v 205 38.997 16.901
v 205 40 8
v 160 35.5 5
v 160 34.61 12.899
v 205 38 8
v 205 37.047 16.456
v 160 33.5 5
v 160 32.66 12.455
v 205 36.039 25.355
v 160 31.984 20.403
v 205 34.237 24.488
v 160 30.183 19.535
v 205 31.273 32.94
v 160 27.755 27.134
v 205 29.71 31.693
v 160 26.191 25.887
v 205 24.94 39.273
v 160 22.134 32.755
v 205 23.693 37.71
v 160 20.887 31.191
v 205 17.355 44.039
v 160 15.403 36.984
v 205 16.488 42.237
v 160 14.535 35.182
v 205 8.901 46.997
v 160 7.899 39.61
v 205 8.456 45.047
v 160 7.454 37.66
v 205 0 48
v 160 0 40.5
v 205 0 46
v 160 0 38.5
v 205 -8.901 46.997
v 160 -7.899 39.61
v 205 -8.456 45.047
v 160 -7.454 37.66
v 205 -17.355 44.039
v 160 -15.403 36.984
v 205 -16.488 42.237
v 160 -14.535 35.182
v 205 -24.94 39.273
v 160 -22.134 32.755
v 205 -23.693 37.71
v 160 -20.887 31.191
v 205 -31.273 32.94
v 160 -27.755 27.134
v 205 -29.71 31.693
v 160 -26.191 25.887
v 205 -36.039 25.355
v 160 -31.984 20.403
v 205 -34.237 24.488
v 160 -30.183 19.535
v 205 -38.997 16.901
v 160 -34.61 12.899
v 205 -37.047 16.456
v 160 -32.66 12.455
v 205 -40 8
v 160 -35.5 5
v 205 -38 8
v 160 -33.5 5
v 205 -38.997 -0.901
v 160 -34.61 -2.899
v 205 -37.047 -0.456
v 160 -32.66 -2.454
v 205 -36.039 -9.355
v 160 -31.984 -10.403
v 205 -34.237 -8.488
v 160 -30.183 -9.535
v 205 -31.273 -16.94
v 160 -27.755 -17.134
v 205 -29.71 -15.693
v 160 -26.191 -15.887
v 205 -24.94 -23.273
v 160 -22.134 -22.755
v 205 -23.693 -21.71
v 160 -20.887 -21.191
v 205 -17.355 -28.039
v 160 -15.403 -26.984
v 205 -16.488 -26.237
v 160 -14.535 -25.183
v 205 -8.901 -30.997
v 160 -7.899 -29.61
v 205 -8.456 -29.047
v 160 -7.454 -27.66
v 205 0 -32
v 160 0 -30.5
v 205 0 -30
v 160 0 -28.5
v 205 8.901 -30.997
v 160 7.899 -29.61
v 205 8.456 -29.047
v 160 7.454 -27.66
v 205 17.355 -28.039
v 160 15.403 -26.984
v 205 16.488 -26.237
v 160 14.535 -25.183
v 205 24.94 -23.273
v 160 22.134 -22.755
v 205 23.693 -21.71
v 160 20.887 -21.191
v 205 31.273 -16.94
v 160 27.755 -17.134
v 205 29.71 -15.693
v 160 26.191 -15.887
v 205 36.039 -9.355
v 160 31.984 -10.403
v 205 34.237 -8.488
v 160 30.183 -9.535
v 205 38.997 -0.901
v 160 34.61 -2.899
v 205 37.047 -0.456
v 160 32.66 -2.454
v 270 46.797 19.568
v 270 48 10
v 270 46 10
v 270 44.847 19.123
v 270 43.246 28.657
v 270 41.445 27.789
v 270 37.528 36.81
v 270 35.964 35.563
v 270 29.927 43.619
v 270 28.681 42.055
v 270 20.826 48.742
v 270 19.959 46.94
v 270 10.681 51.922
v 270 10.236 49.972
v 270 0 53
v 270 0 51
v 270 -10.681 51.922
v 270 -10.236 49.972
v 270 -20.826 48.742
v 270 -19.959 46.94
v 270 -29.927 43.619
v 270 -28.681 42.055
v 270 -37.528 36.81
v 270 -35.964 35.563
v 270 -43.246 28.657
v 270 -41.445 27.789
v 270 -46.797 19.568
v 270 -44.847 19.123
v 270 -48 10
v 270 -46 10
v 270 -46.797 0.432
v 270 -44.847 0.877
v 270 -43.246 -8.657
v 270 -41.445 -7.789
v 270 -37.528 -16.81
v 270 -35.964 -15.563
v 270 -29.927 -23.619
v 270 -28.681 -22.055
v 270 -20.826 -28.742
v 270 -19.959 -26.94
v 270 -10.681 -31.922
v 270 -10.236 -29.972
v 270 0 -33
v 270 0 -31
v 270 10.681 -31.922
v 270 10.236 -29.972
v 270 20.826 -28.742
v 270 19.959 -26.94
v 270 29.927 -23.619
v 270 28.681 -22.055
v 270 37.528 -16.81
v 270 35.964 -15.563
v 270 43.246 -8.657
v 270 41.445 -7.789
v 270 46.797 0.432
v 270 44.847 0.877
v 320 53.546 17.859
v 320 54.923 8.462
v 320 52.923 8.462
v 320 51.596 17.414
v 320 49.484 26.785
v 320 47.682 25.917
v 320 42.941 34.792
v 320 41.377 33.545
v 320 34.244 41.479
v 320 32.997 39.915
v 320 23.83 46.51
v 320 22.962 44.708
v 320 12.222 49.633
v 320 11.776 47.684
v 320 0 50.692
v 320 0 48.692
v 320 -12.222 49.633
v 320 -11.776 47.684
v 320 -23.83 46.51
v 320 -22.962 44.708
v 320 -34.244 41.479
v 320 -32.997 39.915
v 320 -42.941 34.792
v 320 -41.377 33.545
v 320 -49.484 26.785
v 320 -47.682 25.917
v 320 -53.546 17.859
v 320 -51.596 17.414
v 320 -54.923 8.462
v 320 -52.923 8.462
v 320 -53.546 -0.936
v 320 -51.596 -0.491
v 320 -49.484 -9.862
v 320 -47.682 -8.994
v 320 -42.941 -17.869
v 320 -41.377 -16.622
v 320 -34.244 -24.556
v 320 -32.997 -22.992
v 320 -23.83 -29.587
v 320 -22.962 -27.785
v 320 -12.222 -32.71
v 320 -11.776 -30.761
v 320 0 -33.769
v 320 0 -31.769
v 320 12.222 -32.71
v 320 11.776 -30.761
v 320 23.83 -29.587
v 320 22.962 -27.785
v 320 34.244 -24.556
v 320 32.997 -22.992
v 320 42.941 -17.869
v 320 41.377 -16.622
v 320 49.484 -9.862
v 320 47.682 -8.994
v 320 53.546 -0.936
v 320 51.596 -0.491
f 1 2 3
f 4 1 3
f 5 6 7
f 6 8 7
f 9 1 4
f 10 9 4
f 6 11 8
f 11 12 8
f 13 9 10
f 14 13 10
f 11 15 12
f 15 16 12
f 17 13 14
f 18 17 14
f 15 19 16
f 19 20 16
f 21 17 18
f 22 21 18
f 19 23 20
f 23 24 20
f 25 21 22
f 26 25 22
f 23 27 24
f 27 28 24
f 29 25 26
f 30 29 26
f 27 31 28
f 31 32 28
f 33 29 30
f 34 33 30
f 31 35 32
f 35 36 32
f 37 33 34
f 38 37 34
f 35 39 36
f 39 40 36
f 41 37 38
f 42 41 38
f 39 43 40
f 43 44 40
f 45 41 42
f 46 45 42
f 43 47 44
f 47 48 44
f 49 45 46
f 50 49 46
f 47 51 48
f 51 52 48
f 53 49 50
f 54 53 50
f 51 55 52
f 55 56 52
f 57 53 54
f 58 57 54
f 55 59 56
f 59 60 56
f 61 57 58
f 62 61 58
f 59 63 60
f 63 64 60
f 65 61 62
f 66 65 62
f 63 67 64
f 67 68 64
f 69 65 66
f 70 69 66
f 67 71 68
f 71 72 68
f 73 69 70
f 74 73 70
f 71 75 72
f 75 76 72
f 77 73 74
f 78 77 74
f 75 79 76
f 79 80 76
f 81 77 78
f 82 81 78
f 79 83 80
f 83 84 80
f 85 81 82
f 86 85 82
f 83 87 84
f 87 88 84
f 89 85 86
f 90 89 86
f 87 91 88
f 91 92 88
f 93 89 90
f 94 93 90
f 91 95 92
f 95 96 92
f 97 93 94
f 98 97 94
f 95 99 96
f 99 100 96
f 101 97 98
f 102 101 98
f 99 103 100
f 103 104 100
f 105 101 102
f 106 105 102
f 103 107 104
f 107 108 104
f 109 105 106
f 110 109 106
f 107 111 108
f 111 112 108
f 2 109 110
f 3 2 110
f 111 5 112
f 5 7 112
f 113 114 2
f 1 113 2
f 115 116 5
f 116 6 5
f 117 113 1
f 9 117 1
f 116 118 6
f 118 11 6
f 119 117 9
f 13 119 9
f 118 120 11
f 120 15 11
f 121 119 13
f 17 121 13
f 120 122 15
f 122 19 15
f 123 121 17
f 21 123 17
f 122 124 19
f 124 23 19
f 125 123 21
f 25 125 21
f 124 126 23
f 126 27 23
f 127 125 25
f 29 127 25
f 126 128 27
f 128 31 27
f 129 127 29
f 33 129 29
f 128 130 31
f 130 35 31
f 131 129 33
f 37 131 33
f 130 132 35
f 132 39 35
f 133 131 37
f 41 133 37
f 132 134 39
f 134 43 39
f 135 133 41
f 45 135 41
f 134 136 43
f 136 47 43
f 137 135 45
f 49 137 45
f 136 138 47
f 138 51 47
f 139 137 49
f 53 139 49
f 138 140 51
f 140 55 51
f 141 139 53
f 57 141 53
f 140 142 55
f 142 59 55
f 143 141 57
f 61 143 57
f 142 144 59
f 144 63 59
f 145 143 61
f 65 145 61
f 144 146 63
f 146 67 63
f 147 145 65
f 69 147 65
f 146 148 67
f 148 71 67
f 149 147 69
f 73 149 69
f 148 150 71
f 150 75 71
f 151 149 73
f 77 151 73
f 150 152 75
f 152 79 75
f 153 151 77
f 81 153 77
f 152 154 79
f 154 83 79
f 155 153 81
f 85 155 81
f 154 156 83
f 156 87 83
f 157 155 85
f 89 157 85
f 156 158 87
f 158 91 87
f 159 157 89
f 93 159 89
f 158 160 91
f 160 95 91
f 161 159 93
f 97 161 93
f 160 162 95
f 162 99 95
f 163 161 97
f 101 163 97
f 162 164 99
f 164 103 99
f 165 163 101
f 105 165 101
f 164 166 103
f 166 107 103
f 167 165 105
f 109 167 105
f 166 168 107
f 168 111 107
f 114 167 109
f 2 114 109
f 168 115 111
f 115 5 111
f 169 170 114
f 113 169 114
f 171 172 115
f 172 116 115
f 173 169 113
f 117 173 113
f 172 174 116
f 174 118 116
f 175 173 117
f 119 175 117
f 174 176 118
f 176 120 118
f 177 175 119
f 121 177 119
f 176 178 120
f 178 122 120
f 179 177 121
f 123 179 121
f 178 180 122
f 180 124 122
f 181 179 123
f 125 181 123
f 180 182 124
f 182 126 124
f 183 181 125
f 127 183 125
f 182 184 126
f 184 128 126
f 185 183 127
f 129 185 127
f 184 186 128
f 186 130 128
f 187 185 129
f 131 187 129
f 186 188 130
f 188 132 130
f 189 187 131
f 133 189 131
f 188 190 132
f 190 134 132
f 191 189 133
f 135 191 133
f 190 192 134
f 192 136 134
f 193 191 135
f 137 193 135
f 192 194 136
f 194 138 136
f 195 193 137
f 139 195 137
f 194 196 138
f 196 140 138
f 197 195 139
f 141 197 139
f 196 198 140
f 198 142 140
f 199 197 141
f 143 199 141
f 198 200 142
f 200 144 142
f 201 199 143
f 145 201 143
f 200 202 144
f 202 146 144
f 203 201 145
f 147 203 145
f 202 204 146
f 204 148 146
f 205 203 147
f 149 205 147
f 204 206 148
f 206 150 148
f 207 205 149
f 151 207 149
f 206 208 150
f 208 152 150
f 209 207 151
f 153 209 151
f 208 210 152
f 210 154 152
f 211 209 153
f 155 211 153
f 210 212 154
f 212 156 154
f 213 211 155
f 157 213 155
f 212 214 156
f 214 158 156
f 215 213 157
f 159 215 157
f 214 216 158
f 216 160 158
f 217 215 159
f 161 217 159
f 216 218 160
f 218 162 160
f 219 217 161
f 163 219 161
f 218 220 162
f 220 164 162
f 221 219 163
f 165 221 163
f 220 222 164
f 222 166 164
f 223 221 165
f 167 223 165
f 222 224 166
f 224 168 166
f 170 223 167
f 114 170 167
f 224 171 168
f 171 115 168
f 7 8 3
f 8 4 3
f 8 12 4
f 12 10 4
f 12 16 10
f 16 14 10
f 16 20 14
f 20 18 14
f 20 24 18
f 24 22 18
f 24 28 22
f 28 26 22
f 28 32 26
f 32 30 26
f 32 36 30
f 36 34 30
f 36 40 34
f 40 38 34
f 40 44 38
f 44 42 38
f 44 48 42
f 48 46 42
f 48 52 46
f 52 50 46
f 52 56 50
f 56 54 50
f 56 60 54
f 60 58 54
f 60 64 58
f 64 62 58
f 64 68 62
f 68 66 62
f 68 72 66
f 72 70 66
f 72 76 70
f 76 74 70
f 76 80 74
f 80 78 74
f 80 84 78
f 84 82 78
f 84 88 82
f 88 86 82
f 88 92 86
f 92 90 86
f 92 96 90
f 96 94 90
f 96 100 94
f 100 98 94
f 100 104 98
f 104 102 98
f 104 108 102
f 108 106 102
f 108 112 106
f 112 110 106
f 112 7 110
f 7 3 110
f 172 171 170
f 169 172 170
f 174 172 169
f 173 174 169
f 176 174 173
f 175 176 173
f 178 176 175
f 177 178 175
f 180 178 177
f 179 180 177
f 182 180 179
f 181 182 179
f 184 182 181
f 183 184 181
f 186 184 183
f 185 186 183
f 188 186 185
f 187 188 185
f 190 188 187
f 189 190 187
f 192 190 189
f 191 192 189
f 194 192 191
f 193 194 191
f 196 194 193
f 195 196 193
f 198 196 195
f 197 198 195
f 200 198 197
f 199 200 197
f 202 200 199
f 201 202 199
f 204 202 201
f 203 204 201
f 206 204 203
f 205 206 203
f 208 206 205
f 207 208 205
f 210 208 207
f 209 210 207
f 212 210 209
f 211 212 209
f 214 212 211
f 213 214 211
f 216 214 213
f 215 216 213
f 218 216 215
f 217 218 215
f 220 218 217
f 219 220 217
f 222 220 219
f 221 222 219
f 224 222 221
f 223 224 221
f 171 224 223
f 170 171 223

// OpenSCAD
polyhedron(points=[[160.0, 35.5, 5.0], [160.0, 34.609941, 12.899493], [160.0, 31.984395, 20.402873], [160.0, 27.755018, 27.133888], [160.0, 22.133888, 32.755018], [160.0, 15.402873, 36.984395], [160.0, 7.899493, 39.609941], [160.0, 0.0, 40.5], [160.0, -7.899493, 39.609941], [160.0, -15.402873, 36.984395], [160.0, -22.133888, 32.755018], [160.0, -27.755018, 27.133888], [160.0, -31.984395, 20.402873], [160.0, -34.609941, 12.899493], [160.0, -35.5, 5.0], [160.0, -34.609941, -2.899493], [160.0, -31.984395, -10.402873], [160.0, -27.755018, -17.133888], [160.0, -22.133888, -22.755018], [160.0, -15.402873, -26.984395], [160.0, -7.899493, -29.609941], [160.0, -0.0, -30.5], [160.0, 7.899493, -29.609941], [160.0, 15.402873, -26.984395], [160.0, 22.133888, -22.755018], [160.0, 27.755018, -17.133888], [160.0, 31.984395, -10.402873], [160.0, 34.609941, -2.899493], [160.0, 33.5, 5.0], [160.0, 32.660085, 12.454451], [160.0, 30.182457, 19.535105], [160.0, 26.191355, 25.886908], [160.0, 20.886908, 31.191355], [160.0, 14.535105, 35.182457], [160.0, 7.454451, 37.660085], [160.0, 0.0, 38.5], [160.0, -7.454451, 37.660085], [160.0, -14.535105, 35.182457], [160.0, -20.886908, 31.191355], [160.0, -26.191355, 25.886908], [160.0, -30.182457, 19.535105], [160.0, -32.660085, 12.454451], [160.0, -33.5, 5.0], [160.0, -32.660085, -2.454451], [160.0, -30.182457, -9.535105], [160.0, -26.191355, -15.886908], [160.0, -20.886908, -21.191355], [160.0, -14.535105, -25.182457], [160.0, -7.454451, -27.660085], [160.0, -0.0, -28.5], [160.0, 7.454451, -27.660085], [160.0, 14.535105, -25.182457], [160.0, 20.886908, -21.191355], [160.0, 26.191355, -15.886908], [160.0, 30.182457, -9.535105], [160.0, 32.660085, -2.454451], [205.0, 40.0, 8.0], [205.0, 38.997116, 16.900837], [205.0, 36.038755, 25.35535], [205.0, 31.273259, 32.939592], [205.0, 24.939592, 39.273259], [205.0, 17.35535, 44.038755], [205.0, 8.900837, 46.997116], [205.0, 0.0, 48.0], [205.0, -8.900837, 46.997116], [205.0, -17.35535, 44.038755], [205.0, -24.939592, 39.273259], [205.0, -31.273259, 32.939592], [205.0, -36.038755, 25.35535], [205.0, -38.997116, 16.900837], [205.0, -40.0, 8.0], [205.0, -38.997116, -0.900837], [205.0, -36.038755, -9.35535], [205.0, -31.273259, -16.939592], [205.0, -24.939592, -23.273259], [205.0, -17.35535, -28.038755], [205.0, -8.900837, -30.997116], [205.0, -0.0, -32.0], [205.0, 8.900837, -30.997116], [205.0, 17.35535, -28.038755], [205.0, 24.939592, -23.273259], [205.0, 31.273259, -16.939592], [205.0, 36.038755, -9.35535], [205.0, 38.997116, -0.900837], [205.0, 38.0, 8.0], [205.0, 37.047261, 16.455795], [205.0, 34.236817, 24.487582], [205.0, 29.709596, 31.692612], [205.0, 23.692612, 37.709596], [205.0, 16.487582, 42.236817], [205.0, 8.455795, 45.047261], [205.0, 0.0, 46.0], [205.0, -8.455795, 45.047261], [205.0, -16.487582, 42.236817], [205.0, -23.692612, 37.709596], [205.0, -29.709596, 31.692612], [205.0, -34.236817, 24.487582], [205.0, -37.047261, 16.455795], [205.0, -38.0, 8.0], [205.0, -37.047261, -0.455795], [205.0, -34.236817, -8.487582], [205.0, -29.709596, -15.692612], [205.0, -23.692612, -21.709596], [205.0, -16.487582, -26.236817], [205.0, -8.455795, -29.047261], [205.0, -0.0, -30.0], [205.0, 8.455795, -29.047261], [205.0, 16.487582, -26.236817], [205.0, 23.692612, -21.709596], [205.0, 29.709596, -15.692612], [205.0, 34.236817, -8.487582], [205.0, 37.047261, -0.455795], [270.0, 48.0, 10.0], [270.0, 46.79654, 19.5684], [270.0, 43.246506, 28.657001], [270.0, 37.527911, 36.810061], [270.0, 29.92751, 43.618754], [270.0, 20.826419, 48.741661], [270.0, 10.681005, 51.9219], [270.0, 0.0, 53.0], [270.0, -10.681005, 51.9219], [270.0, -20.826419, 48.741661], [270.0, -29.92751, 43.618754], [270.0, -37.527911, 36.810061], [270.0, -43.246506, 28.657001], [270.0, -46.79654, 19.5684], [270.0, -48.0, 10.0], [270.0, -46.79654, 0.4316], [270.0, -43.246506, -8.657001], [270.0, -37.527911, -16.810061], [270.0, -29.92751, -23.618754], [270.0, -20.826419, -28.741661], [270.0, -10.681005, -31.9219], [270.0, -0.0, -33.0], [270.0, 10.681005, -31.9219], [270.0, 20.826419, -28.741661], [270.0, 29.92751, -23.618754], [270.0, 37.527911, -16.810061], [270.0, 43.246506, -8.657001], [270.0, 46.79654, 0.4316], [270.0, 46.0, 10.0], [270.0, 44.846684, 19.123358], [270.0, 41.444568, 27.789233], [270.0, 35.964248, 35.563082], [270.0, 28.680531, 42.055091], [270.0, 19.958652, 46.939724], [270.0, 10.235963, 49.972044], [270.0, 0.0, 51.0], [270.0, -10.235963, 49.972044], [270.0, -19.958652, 46.939724], [270.0, -28.680531, 42.055091], [270.0, -35.964248, 35.563082], [270.0, -41.444568, 27.789233], [270.0, -44.846684, 19.123358], [270.0, -46.0, 10.0], [270.0, -44.846684, 0.876642], [270.0, -41.444568, -7.789233], [270.0, -35.964248, -15.563082], [270.0, -28.680531, -22.055091], [270.0, -19.958652, -26.939724], [270.0, -10.235963, -29.972044], [270.0, -0.0, -31.0], [270.0, 10.235963, -29.972044], [270.0, 19.958652, -26.939724], [270.0, 28.680531, -22.055091], [270.0, 35.964248, -15.563082], [270.0, 41.444568, -7.789233], [270.0, 44.846684, 0.876642], [320.0, 54.923077, 8.461538], [320.0, 53.546041, 17.858769], [320.0, 49.483982, 26.784783], [320.0, 42.940591, 34.791992], [320.0, 34.243978, 41.478883], [320.0, 23.83023, 46.510147], [320.0, 12.221534, 49.633494], [320.0, 0.0, 50.692308], [320.0, -12.221534, 49.633494], [320.0, -23.83023, 46.510147], [320.0, -34.243978, 41.478883], [320.0, -42.940591, 34.791992], [320.0, -49.483982, 26.784783], [320.0, -53.546041, 17.858769], [320.0, -54.923077, 8.461538], [320.0, -53.546041, -0.935692], [320.0, -49.483982, -9.861706], [320.0, -42.940591, -17.868915], [320.0, -34.243978, -24.555806], [320.0, -23.83023, -29.58707], [320.0, -12.221534, -32.710417], [320.0, -0.0, -33.769231], [320.0, 12.221534, -32.710417], [320.0, 23.83023, -29.58707], [320.0, 34.243978, -24.555806], [320.0, 42.940591, -17.868915], [320.0, 49.483982, -9.861706], [320.0, 53.546041, -0.935692], [320.0, 52.923077, 8.461538], [320.0, 51.596185, 17.413727], [320.0, 47.682045, 25.917015], [320.0, 41.376928, 33.545013], [320.0, 32.996999, 39.91522], [320.0, 22.962463, 44.708209], [320.0, 11.776493, 47.683638], [320.0, 0.0, 48.692308], [320.0, -11.776493, 47.683638], [320.0, -22.962463, 44.708209], [320.0, -32.996999, 39.91522], [320.0, -41.376928, 33.545013], [320.0, -47.682045, 25.917015], [320.0, -51.596185, 17.413727], [320.0, -52.923077, 8.461538], [320.0, -51.596185, -0.49065], [320.0, -47.682045, -8.993938], [320.0, -41.376928, -16.621936], [320.0, -32.996999, -22.992143], [320.0, -22.962463, -27.785132], [320.0, -11.776493, -30.760561], [320.0, -0.0, -31.769231], [320.0, 11.776493, -30.760561], [320.0, 22.962463, -27.785132], [320.0, 32.996999, -22.992143], [320.0, 41.376928, -16.621936], [320.0, 47.682045, -8.993938], [320.0, 51.596185, -0.49065]], faces=[[0, 56, 57], [0, 57, 1], [28, 85, 84], [28, 29, 85], [1, 57, 58], [1, 58, 2], [29, 86, 85], [29, 30, 86], [2, 58, 59], [2, 59, 3], [30, 87, 86], [30, 31, 87], [3, 59, 60], [3, 60, 4], [31, 88, 87], [31, 32, 88], [4, 60, 61], [4, 61, 5], [32, 89, 88], [32, 33, 89], [5, 61, 62], [5, 62, 6], [33, 90, 89], [33, 34, 90], [6, 62, 63], [6, 63, 7], [34, 91, 90], [34, 35, 91], [7, 63, 64], [7, 64, 8], [35, 92, 91], [35, 36, 92], [8, 64, 65], [8, 65, 9], [36, 93, 92], [36, 37, 93], [9, 65, 66], [9, 66, 10], [37, 94, 93], [37, 38, 94], [10, 66, 67], [10, 67, 11], [38, 95, 94], [38, 39, 95], [11, 67, 68], [11, 68, 12], [39, 96, 95], [39, 40, 96], [12, 68, 69], [12, 69, 13], [40, 97, 96], [40, 41, 97], [13, 69, 70], [13, 70, 14], [41, 98, 97], [41, 42, 98], [14, 70, 71], [14, 71, 15], [42, 99, 98], [42, 43, 99], [15, 71, 72], [15, 72, 16], [43, 100, 99], [43, 44, 100], [16, 72, 73], [16, 73, 17], [44, 101, 100], [44, 45, 101], [17, 73, 74], [17, 74, 18], [45, 102, 101], [45, 46, 102], [18, 74, 75], [18, 75, 19], [46, 103, 102], [46, 47, 103], [19, 75, 76], [19, 76, 20], [47, 104, 103], [47, 48, 104], [20, 76, 77], [20, 77, 21], [48, 105, 104], [48, 49, 105], [21, 77, 78], [21, 78, 22], [49, 106, 105], [49, 50, 106], [22, 78, 79], [22, 79, 23], [50, 107, 106], [50, 51, 107], [23, 79, 80], [23, 80, 24], [51, 108, 107], [51, 52, 108], [24, 80, 81], [24, 81, 25], [52, 109, 108], [52, 53, 109], [25, 81, 82], [25, 82, 26], [53, 110, 109], [53, 54, 110], [26, 82, 83], [26, 83, 27], [54, 111, 110], [54, 55, 111], [27, 83, 56], [27, 56, 0], [55, 84, 111], [55, 28, 84], [56, 112, 113], [56, 113, 57], [84, 141, 140], [84, 85, 141], [57, 113, 114], [57, 114, 58], [85, 142, 141], [85, 86, 142], [58, 114, 115], [58, 115, 59], [86, 143, 142], [86, 87, 143], [59, 115, 116], [59, 116, 60], [87, 144, 143], [87, 88, 144], [60, 116, 117], [60, 117, 61], [88, 145, 144], [88, 89, 145], [61, 117, 118], [61, 118, 62], [89, 146, 145], [89, 90, 146], [62, 118, 119], [62, 119, 63], [90, 147, 146], [90, 91, 147], [63, 119, 120], [63, 120, 64], [91, 148, 147], [91, 92, 148], [64, 120, 121], [64, 121, 65], [92, 149, 148], [92, 93, 149], [65, 121, 122], [65, 122, 66], [93, 150, 149], [93, 94, 150], [66, 122, 123], [66, 123, 67], [94, 151, 150], [94, 95, 151], [67, 123, 124], [67, 124, 68], [95, 152, 151], [95, 96, 152], [68, 124, 125], [68, 125, 69], [96, 153, 152], [96, 97, 153], [69, 125, 126], [69, 126, 70], [97, 154, 153], [97, 98, 154], [70, 126, 127], [70, 127, 71], [98, 155, 154], [98, 99, 155], [71, 127, 128], [71, 128, 72], [99, 156, 155], [99, 100, 156], [72, 128, 129], [72, 129, 73], [100, 157, 156], [100, 101, 157], [73, 129, 130], [73, 130, 74], [101, 158, 157], [101, 102, 158], [74, 130, 131], [74, 131, 75], [102, 159, 158], [102, 103, 159], [75, 131, 132], [75, 132, 76], [103, 160, 159], [103, 104, 160], [76, 132, 133], [76, 133, 77], [104, 161, 160], [104, 105, 161], [77, 133, 134], [77, 134, 78], [105, 162, 161], [105, 106, 162], [78, 134, 135], [78, 135, 79], [106, 163, 162], [106, 107, 163], [79, 135, 136], [79, 136, 80], [107, 164, 163], [107, 108, 164], [80, 136, 137], [80, 137, 81], [108, 165, 164], [108, 109, 165], [81, 137, 138], [81, 138, 82], [109, 166, 165], [109, 110, 166], [82, 138, 139], [82, 139, 83], [110, 167, 166], [110, 111, 167], [83, 139, 112], [83, 112, 56], [111, 140, 167], [111, 84, 140], [112, 168, 169], [112, 169, 113], [140, 197, 196], [140, 141, 197], [113, 169, 170], [113, 170, 114], [141, 198, 197], [141, 142, 198], [114, 170, 171], [114, 171, 115], [142, 199, 198], [142, 143, 199], [115, 171, 172], [115, 172, 116], [143, 200, 199], [143, 144, 200], [116, 172, 173], [116, 173, 117], [144, 201, 200], [144, 145, 201], [117, 173, 174], [117, 174, 118], [145, 202, 201], [145, 146, 202], [118, 174, 175], [118, 175, 119], [146, 203, 202], [146, 147, 203], [119, 175, 176], [119, 176, 120], [147, 204, 203], [147, 148, 204], [120, 176, 177], [120, 177, 121], [148, 205, 204], [148, 149, 205], [121, 177, 178], [121, 178, 122], [149, 206, 205], [149, 150, 206], [122, 178, 179], [122, 179, 123], [150, 207, 206], [150, 151, 207], [123, 179, 180], [123, 180, 124], [151, 208, 207], [151, 152, 208], [124, 180, 181], [124, 181, 125], [152, 209, 208], [152, 153, 209], [125, 181, 182], [125, 182, 126], [153, 210, 209], [153, 154, 210], [126, 182, 183], [126, 183, 127], [154, 211, 210], [154, 155, 211], [127, 183, 184], [127, 184, 128], [155, 212, 211], [155, 156, 212], [128, 184, 185], [128, 185, 129], [156, 213, 212], [156, 157, 213], [129, 185, 186], [129, 186, 130], [157, 214, 213], [157, 158, 214], [130, 186, 187], [130, 187, 131], [158, 215, 214], [158, 159, 215], [131, 187, 188], [131, 188, 132], [159, 216, 215], [159, 160, 216], [132, 188, 189], [132, 189, 133], [160, 217, 216], [160, 161, 217], [133, 189, 190], [133, 190, 134], [161, 218, 217], [161, 162, 218], [134, 190, 191], [134, 191, 135], [162, 219, 218], [162, 163, 219], [135, 191, 192], [135, 192, 136], [163, 220, 219], [163, 164, 220], [136, 192, 193], [136, 193, 137], [164, 221, 220], [164, 165, 221], [137, 193, 194], [137, 194, 138], [165, 222, 221], [165, 166, 222], [138, 194, 195], [138, 195, 139], [166, 223, 222], [166, 167, 223], [139, 195, 168], [139, 168, 112], [167, 196, 223], [167, 140, 196], [0, 29, 28], [0, 1, 29], [1, 30, 29], [1, 2, 30], [2, 31, 30], [2, 3, 31], [3, 32, 31], [3, 4, 32], [4, 33, 32], [4, 5, 33], [5, 34, 33], [5, 6, 34], [6, 35, 34], [6, 7, 35], [7, 36, 35], [7, 8, 36], [8, 37, 36], [8, 9, 37], [9, 38, 37], [9, 10, 38], [10, 39, 38], [10, 11, 39], [11, 40, 39], [11, 12, 40], [12, 41, 40], [12, 13, 41], [13, 42, 41], [13, 14, 42], [14, 43, 42], [14, 15, 43], [15, 44, 43], [15, 16, 44], [16, 45, 44], [16, 17, 45], [17, 46, 45], [17, 18, 46], [18, 47, 46], [18, 19, 47], [19, 48, 47], [19, 20, 48], [20, 49, 48], [20, 21, 49], [21, 50, 49], [21, 22, 50], [22, 51, 50], [22, 23, 51], [23, 52, 51], [23, 24, 52], [24, 53, 52], [24, 25, 53], [25, 54, 53], [25, 26, 54], [26, 55, 54], [26, 27, 55], [27, 28, 55], [27, 0, 28], [168, 196, 197], [168, 197, 169], [169, 197, 198], [169, 198, 170], [170, 198, 199], [170, 199, 171], [171, 199, 200], [171, 200, 172], [172, 200, 201], [172, 201, 173], [173, 201, 202], [173, 202, 174], [174, 202, 203], [174, 203, 175], [175, 203, 204], [175, 204, 176], [176, 204, 205], [176, 205, 177], [177, 205, 206], [177, 206, 178], [178, 206, 207], [178, 207, 179], [179, 207, 208], [179, 208, 180], [180, 208, 209], [180, 209, 181], [181, 209, 210], [181, 210, 182], [182, 210, 211], [182, 211, 183], [183, 211, 212], [183, 212, 184], [184, 212, 213], [184, 213, 185], [185, 213, 214], [185, 214, 186], [186, 214, 215], [186, 215, 187], [187, 215, 216], [187, 216, 188], [188, 216, 217], [188, 217, 189], [189, 217, 218], [189, 218, 190], [190, 218, 219], [190, 219, 191], [191, 219, 220], [191, 220, 192], [192, 220, 221], [192, 221, 193], [193, 221, 222], [193, 222, 194], [194, 222, 223], [194, 223, 195], [195, 223, 196], [195, 196, 168]], convexity=20);
